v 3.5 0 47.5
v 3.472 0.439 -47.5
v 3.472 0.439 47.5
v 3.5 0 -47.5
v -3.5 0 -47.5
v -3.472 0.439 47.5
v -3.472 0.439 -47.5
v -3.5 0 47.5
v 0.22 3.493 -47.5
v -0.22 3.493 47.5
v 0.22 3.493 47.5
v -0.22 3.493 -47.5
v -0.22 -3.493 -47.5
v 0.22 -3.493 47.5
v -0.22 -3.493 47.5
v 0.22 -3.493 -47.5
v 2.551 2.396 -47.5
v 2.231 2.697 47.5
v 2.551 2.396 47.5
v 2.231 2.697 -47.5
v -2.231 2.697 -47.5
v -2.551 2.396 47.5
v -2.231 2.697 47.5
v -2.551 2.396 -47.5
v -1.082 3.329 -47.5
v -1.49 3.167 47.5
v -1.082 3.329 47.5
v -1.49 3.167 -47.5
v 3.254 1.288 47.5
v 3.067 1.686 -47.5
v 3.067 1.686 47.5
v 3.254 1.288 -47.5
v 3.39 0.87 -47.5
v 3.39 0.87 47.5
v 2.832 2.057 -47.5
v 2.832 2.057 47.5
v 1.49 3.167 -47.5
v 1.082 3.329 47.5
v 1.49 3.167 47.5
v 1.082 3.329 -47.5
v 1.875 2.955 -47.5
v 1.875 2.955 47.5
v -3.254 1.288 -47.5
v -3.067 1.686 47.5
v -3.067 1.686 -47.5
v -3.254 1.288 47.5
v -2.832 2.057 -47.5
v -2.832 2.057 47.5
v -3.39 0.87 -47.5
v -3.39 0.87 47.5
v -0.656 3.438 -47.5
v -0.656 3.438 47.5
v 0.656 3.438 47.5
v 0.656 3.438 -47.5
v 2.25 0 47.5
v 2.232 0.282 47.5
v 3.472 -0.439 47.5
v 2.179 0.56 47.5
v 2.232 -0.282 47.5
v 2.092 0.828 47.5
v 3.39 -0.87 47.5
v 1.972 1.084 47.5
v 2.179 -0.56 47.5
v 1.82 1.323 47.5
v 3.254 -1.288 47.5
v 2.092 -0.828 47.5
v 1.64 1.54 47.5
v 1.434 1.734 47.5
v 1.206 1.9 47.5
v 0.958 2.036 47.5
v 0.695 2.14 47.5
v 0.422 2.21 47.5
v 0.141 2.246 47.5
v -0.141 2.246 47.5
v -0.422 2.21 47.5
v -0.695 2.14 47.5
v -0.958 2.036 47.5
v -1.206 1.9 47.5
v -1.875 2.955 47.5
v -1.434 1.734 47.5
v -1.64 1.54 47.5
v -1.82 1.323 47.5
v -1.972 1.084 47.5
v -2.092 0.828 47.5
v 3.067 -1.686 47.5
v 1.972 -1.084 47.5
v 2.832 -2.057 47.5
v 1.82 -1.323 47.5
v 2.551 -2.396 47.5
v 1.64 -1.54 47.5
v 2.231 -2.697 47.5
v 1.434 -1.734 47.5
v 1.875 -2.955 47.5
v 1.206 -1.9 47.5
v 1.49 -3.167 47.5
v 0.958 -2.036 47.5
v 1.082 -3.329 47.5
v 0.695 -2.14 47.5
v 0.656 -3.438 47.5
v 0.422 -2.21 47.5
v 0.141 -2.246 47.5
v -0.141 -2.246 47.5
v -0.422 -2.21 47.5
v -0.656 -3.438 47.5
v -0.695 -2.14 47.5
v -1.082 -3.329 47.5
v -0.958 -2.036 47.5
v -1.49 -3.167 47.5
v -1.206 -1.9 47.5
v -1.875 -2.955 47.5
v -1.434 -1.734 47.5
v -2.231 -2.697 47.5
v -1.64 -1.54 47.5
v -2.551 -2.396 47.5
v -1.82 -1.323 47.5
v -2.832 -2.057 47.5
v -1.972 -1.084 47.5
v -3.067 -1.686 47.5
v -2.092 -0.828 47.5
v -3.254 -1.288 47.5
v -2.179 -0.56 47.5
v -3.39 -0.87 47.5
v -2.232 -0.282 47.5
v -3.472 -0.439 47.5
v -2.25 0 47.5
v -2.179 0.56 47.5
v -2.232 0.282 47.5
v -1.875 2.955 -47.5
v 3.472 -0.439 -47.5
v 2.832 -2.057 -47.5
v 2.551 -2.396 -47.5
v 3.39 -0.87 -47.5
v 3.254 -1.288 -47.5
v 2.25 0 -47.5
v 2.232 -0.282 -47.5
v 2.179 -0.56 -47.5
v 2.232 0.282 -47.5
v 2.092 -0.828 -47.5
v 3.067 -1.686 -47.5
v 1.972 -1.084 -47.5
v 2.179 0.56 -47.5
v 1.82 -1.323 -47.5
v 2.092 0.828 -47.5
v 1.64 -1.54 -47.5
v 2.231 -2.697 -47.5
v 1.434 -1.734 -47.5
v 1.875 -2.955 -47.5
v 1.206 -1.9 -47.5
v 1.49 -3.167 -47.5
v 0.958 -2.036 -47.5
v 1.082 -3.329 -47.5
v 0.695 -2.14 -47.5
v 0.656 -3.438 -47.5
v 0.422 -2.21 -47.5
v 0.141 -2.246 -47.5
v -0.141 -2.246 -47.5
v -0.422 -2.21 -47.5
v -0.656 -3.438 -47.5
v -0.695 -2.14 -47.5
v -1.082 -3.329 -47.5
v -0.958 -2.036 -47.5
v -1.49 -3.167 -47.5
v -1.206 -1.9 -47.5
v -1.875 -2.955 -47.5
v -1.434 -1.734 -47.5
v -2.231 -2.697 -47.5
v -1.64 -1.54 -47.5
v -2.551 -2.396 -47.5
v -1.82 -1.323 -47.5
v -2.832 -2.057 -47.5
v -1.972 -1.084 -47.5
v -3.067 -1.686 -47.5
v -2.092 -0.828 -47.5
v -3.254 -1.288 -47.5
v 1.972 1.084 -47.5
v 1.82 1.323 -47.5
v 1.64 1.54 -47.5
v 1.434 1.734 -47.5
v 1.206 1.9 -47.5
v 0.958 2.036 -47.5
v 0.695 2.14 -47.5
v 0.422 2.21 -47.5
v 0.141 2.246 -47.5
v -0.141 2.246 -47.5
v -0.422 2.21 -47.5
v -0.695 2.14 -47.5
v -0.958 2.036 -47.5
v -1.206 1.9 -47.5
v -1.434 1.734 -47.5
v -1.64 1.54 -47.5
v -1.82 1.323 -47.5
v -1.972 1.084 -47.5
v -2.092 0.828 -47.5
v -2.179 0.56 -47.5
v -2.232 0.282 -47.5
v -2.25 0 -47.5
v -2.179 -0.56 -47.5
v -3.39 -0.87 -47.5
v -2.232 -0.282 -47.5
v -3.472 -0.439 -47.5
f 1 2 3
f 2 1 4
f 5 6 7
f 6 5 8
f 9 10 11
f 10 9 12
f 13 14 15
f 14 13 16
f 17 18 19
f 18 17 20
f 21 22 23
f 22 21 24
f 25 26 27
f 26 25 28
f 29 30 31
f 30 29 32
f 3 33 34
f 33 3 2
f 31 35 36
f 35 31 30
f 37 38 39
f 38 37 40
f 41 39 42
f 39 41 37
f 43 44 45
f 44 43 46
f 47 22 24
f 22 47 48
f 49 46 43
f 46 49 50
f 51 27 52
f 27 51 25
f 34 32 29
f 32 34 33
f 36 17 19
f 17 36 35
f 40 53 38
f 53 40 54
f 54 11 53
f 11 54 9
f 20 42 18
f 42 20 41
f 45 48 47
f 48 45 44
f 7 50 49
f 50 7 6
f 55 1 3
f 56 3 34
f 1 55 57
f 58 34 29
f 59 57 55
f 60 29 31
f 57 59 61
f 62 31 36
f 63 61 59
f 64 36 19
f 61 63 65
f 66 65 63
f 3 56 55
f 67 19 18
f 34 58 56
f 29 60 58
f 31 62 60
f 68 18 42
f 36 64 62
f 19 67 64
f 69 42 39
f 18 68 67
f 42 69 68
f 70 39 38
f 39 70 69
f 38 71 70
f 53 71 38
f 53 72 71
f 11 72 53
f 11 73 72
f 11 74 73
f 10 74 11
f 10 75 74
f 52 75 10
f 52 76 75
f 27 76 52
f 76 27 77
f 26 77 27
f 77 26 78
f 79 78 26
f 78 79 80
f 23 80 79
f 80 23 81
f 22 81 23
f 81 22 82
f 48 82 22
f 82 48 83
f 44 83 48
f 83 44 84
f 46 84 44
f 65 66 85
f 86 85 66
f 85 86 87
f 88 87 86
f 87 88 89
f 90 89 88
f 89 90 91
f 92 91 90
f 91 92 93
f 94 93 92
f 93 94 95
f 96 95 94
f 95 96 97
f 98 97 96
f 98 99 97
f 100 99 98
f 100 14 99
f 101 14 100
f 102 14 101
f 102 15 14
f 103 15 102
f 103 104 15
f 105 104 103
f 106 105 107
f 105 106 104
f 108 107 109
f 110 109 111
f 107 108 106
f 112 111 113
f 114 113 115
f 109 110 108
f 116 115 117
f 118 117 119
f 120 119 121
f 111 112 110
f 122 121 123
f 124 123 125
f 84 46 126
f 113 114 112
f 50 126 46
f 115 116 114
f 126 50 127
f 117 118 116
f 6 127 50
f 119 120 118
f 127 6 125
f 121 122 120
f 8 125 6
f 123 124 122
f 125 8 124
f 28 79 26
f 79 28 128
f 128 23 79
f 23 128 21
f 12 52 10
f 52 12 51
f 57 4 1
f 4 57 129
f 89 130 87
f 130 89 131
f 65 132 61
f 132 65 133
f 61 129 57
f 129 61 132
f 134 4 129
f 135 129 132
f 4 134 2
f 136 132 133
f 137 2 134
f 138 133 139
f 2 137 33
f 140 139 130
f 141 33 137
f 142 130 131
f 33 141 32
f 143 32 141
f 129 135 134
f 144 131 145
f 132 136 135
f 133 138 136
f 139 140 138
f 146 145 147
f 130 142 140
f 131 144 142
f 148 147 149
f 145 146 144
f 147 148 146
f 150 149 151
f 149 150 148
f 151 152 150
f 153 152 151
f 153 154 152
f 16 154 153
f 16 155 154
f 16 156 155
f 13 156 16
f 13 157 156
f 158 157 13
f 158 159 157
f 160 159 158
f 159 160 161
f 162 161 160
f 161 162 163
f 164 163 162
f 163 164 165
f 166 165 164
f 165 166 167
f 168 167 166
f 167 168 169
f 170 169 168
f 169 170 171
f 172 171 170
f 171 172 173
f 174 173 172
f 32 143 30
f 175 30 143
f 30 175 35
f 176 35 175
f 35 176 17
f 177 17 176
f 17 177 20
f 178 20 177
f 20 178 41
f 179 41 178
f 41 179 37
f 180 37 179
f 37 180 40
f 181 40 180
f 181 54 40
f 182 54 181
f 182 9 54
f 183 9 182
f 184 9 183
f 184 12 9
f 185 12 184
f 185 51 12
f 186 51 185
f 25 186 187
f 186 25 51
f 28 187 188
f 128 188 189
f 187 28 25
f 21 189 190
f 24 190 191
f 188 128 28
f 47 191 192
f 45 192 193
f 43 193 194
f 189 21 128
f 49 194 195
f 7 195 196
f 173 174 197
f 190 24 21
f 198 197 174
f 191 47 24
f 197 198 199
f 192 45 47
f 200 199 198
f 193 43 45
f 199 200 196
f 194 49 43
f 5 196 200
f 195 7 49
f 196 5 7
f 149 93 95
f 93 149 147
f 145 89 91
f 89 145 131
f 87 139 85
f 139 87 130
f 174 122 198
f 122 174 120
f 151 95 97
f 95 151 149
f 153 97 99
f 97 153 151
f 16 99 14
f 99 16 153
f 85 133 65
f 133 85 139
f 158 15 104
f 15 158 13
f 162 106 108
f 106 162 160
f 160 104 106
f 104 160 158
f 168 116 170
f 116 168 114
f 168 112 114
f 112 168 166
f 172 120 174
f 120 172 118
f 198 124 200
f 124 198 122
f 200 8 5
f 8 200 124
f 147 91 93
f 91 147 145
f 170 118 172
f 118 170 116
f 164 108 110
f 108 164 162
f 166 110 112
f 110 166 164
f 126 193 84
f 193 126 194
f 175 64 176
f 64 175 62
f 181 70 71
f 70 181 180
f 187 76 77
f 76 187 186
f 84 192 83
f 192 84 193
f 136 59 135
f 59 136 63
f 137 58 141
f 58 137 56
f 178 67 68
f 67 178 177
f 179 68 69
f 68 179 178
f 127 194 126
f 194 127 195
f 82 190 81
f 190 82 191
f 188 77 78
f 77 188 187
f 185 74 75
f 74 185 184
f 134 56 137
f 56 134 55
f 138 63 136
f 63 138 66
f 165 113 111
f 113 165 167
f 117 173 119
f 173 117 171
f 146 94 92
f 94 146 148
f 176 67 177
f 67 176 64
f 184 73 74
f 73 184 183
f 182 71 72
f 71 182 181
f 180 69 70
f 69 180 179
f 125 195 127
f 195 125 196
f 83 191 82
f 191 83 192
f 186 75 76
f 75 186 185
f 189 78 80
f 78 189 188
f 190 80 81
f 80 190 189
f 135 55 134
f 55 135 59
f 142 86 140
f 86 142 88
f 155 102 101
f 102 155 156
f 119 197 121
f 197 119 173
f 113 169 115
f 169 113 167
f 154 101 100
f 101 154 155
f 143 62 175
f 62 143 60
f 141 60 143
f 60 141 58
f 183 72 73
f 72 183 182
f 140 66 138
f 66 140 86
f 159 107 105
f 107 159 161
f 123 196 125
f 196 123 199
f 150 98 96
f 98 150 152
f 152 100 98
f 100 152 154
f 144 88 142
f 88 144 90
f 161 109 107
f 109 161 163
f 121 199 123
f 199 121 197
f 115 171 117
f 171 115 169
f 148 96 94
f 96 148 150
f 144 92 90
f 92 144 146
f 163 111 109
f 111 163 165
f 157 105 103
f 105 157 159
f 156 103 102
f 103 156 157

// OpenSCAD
$fn = 50;


difference() {
	union() {
		translate(v = [0, 0, -47.5000000000]) {
			cylinder(h = 95, r = 3.5000000000);
		}
	}
	union() {
		translate(v = [0, 0, -100.0000000000]) {
			cylinder(h = 200, r = 2.2500000000);
		}
	}
}
